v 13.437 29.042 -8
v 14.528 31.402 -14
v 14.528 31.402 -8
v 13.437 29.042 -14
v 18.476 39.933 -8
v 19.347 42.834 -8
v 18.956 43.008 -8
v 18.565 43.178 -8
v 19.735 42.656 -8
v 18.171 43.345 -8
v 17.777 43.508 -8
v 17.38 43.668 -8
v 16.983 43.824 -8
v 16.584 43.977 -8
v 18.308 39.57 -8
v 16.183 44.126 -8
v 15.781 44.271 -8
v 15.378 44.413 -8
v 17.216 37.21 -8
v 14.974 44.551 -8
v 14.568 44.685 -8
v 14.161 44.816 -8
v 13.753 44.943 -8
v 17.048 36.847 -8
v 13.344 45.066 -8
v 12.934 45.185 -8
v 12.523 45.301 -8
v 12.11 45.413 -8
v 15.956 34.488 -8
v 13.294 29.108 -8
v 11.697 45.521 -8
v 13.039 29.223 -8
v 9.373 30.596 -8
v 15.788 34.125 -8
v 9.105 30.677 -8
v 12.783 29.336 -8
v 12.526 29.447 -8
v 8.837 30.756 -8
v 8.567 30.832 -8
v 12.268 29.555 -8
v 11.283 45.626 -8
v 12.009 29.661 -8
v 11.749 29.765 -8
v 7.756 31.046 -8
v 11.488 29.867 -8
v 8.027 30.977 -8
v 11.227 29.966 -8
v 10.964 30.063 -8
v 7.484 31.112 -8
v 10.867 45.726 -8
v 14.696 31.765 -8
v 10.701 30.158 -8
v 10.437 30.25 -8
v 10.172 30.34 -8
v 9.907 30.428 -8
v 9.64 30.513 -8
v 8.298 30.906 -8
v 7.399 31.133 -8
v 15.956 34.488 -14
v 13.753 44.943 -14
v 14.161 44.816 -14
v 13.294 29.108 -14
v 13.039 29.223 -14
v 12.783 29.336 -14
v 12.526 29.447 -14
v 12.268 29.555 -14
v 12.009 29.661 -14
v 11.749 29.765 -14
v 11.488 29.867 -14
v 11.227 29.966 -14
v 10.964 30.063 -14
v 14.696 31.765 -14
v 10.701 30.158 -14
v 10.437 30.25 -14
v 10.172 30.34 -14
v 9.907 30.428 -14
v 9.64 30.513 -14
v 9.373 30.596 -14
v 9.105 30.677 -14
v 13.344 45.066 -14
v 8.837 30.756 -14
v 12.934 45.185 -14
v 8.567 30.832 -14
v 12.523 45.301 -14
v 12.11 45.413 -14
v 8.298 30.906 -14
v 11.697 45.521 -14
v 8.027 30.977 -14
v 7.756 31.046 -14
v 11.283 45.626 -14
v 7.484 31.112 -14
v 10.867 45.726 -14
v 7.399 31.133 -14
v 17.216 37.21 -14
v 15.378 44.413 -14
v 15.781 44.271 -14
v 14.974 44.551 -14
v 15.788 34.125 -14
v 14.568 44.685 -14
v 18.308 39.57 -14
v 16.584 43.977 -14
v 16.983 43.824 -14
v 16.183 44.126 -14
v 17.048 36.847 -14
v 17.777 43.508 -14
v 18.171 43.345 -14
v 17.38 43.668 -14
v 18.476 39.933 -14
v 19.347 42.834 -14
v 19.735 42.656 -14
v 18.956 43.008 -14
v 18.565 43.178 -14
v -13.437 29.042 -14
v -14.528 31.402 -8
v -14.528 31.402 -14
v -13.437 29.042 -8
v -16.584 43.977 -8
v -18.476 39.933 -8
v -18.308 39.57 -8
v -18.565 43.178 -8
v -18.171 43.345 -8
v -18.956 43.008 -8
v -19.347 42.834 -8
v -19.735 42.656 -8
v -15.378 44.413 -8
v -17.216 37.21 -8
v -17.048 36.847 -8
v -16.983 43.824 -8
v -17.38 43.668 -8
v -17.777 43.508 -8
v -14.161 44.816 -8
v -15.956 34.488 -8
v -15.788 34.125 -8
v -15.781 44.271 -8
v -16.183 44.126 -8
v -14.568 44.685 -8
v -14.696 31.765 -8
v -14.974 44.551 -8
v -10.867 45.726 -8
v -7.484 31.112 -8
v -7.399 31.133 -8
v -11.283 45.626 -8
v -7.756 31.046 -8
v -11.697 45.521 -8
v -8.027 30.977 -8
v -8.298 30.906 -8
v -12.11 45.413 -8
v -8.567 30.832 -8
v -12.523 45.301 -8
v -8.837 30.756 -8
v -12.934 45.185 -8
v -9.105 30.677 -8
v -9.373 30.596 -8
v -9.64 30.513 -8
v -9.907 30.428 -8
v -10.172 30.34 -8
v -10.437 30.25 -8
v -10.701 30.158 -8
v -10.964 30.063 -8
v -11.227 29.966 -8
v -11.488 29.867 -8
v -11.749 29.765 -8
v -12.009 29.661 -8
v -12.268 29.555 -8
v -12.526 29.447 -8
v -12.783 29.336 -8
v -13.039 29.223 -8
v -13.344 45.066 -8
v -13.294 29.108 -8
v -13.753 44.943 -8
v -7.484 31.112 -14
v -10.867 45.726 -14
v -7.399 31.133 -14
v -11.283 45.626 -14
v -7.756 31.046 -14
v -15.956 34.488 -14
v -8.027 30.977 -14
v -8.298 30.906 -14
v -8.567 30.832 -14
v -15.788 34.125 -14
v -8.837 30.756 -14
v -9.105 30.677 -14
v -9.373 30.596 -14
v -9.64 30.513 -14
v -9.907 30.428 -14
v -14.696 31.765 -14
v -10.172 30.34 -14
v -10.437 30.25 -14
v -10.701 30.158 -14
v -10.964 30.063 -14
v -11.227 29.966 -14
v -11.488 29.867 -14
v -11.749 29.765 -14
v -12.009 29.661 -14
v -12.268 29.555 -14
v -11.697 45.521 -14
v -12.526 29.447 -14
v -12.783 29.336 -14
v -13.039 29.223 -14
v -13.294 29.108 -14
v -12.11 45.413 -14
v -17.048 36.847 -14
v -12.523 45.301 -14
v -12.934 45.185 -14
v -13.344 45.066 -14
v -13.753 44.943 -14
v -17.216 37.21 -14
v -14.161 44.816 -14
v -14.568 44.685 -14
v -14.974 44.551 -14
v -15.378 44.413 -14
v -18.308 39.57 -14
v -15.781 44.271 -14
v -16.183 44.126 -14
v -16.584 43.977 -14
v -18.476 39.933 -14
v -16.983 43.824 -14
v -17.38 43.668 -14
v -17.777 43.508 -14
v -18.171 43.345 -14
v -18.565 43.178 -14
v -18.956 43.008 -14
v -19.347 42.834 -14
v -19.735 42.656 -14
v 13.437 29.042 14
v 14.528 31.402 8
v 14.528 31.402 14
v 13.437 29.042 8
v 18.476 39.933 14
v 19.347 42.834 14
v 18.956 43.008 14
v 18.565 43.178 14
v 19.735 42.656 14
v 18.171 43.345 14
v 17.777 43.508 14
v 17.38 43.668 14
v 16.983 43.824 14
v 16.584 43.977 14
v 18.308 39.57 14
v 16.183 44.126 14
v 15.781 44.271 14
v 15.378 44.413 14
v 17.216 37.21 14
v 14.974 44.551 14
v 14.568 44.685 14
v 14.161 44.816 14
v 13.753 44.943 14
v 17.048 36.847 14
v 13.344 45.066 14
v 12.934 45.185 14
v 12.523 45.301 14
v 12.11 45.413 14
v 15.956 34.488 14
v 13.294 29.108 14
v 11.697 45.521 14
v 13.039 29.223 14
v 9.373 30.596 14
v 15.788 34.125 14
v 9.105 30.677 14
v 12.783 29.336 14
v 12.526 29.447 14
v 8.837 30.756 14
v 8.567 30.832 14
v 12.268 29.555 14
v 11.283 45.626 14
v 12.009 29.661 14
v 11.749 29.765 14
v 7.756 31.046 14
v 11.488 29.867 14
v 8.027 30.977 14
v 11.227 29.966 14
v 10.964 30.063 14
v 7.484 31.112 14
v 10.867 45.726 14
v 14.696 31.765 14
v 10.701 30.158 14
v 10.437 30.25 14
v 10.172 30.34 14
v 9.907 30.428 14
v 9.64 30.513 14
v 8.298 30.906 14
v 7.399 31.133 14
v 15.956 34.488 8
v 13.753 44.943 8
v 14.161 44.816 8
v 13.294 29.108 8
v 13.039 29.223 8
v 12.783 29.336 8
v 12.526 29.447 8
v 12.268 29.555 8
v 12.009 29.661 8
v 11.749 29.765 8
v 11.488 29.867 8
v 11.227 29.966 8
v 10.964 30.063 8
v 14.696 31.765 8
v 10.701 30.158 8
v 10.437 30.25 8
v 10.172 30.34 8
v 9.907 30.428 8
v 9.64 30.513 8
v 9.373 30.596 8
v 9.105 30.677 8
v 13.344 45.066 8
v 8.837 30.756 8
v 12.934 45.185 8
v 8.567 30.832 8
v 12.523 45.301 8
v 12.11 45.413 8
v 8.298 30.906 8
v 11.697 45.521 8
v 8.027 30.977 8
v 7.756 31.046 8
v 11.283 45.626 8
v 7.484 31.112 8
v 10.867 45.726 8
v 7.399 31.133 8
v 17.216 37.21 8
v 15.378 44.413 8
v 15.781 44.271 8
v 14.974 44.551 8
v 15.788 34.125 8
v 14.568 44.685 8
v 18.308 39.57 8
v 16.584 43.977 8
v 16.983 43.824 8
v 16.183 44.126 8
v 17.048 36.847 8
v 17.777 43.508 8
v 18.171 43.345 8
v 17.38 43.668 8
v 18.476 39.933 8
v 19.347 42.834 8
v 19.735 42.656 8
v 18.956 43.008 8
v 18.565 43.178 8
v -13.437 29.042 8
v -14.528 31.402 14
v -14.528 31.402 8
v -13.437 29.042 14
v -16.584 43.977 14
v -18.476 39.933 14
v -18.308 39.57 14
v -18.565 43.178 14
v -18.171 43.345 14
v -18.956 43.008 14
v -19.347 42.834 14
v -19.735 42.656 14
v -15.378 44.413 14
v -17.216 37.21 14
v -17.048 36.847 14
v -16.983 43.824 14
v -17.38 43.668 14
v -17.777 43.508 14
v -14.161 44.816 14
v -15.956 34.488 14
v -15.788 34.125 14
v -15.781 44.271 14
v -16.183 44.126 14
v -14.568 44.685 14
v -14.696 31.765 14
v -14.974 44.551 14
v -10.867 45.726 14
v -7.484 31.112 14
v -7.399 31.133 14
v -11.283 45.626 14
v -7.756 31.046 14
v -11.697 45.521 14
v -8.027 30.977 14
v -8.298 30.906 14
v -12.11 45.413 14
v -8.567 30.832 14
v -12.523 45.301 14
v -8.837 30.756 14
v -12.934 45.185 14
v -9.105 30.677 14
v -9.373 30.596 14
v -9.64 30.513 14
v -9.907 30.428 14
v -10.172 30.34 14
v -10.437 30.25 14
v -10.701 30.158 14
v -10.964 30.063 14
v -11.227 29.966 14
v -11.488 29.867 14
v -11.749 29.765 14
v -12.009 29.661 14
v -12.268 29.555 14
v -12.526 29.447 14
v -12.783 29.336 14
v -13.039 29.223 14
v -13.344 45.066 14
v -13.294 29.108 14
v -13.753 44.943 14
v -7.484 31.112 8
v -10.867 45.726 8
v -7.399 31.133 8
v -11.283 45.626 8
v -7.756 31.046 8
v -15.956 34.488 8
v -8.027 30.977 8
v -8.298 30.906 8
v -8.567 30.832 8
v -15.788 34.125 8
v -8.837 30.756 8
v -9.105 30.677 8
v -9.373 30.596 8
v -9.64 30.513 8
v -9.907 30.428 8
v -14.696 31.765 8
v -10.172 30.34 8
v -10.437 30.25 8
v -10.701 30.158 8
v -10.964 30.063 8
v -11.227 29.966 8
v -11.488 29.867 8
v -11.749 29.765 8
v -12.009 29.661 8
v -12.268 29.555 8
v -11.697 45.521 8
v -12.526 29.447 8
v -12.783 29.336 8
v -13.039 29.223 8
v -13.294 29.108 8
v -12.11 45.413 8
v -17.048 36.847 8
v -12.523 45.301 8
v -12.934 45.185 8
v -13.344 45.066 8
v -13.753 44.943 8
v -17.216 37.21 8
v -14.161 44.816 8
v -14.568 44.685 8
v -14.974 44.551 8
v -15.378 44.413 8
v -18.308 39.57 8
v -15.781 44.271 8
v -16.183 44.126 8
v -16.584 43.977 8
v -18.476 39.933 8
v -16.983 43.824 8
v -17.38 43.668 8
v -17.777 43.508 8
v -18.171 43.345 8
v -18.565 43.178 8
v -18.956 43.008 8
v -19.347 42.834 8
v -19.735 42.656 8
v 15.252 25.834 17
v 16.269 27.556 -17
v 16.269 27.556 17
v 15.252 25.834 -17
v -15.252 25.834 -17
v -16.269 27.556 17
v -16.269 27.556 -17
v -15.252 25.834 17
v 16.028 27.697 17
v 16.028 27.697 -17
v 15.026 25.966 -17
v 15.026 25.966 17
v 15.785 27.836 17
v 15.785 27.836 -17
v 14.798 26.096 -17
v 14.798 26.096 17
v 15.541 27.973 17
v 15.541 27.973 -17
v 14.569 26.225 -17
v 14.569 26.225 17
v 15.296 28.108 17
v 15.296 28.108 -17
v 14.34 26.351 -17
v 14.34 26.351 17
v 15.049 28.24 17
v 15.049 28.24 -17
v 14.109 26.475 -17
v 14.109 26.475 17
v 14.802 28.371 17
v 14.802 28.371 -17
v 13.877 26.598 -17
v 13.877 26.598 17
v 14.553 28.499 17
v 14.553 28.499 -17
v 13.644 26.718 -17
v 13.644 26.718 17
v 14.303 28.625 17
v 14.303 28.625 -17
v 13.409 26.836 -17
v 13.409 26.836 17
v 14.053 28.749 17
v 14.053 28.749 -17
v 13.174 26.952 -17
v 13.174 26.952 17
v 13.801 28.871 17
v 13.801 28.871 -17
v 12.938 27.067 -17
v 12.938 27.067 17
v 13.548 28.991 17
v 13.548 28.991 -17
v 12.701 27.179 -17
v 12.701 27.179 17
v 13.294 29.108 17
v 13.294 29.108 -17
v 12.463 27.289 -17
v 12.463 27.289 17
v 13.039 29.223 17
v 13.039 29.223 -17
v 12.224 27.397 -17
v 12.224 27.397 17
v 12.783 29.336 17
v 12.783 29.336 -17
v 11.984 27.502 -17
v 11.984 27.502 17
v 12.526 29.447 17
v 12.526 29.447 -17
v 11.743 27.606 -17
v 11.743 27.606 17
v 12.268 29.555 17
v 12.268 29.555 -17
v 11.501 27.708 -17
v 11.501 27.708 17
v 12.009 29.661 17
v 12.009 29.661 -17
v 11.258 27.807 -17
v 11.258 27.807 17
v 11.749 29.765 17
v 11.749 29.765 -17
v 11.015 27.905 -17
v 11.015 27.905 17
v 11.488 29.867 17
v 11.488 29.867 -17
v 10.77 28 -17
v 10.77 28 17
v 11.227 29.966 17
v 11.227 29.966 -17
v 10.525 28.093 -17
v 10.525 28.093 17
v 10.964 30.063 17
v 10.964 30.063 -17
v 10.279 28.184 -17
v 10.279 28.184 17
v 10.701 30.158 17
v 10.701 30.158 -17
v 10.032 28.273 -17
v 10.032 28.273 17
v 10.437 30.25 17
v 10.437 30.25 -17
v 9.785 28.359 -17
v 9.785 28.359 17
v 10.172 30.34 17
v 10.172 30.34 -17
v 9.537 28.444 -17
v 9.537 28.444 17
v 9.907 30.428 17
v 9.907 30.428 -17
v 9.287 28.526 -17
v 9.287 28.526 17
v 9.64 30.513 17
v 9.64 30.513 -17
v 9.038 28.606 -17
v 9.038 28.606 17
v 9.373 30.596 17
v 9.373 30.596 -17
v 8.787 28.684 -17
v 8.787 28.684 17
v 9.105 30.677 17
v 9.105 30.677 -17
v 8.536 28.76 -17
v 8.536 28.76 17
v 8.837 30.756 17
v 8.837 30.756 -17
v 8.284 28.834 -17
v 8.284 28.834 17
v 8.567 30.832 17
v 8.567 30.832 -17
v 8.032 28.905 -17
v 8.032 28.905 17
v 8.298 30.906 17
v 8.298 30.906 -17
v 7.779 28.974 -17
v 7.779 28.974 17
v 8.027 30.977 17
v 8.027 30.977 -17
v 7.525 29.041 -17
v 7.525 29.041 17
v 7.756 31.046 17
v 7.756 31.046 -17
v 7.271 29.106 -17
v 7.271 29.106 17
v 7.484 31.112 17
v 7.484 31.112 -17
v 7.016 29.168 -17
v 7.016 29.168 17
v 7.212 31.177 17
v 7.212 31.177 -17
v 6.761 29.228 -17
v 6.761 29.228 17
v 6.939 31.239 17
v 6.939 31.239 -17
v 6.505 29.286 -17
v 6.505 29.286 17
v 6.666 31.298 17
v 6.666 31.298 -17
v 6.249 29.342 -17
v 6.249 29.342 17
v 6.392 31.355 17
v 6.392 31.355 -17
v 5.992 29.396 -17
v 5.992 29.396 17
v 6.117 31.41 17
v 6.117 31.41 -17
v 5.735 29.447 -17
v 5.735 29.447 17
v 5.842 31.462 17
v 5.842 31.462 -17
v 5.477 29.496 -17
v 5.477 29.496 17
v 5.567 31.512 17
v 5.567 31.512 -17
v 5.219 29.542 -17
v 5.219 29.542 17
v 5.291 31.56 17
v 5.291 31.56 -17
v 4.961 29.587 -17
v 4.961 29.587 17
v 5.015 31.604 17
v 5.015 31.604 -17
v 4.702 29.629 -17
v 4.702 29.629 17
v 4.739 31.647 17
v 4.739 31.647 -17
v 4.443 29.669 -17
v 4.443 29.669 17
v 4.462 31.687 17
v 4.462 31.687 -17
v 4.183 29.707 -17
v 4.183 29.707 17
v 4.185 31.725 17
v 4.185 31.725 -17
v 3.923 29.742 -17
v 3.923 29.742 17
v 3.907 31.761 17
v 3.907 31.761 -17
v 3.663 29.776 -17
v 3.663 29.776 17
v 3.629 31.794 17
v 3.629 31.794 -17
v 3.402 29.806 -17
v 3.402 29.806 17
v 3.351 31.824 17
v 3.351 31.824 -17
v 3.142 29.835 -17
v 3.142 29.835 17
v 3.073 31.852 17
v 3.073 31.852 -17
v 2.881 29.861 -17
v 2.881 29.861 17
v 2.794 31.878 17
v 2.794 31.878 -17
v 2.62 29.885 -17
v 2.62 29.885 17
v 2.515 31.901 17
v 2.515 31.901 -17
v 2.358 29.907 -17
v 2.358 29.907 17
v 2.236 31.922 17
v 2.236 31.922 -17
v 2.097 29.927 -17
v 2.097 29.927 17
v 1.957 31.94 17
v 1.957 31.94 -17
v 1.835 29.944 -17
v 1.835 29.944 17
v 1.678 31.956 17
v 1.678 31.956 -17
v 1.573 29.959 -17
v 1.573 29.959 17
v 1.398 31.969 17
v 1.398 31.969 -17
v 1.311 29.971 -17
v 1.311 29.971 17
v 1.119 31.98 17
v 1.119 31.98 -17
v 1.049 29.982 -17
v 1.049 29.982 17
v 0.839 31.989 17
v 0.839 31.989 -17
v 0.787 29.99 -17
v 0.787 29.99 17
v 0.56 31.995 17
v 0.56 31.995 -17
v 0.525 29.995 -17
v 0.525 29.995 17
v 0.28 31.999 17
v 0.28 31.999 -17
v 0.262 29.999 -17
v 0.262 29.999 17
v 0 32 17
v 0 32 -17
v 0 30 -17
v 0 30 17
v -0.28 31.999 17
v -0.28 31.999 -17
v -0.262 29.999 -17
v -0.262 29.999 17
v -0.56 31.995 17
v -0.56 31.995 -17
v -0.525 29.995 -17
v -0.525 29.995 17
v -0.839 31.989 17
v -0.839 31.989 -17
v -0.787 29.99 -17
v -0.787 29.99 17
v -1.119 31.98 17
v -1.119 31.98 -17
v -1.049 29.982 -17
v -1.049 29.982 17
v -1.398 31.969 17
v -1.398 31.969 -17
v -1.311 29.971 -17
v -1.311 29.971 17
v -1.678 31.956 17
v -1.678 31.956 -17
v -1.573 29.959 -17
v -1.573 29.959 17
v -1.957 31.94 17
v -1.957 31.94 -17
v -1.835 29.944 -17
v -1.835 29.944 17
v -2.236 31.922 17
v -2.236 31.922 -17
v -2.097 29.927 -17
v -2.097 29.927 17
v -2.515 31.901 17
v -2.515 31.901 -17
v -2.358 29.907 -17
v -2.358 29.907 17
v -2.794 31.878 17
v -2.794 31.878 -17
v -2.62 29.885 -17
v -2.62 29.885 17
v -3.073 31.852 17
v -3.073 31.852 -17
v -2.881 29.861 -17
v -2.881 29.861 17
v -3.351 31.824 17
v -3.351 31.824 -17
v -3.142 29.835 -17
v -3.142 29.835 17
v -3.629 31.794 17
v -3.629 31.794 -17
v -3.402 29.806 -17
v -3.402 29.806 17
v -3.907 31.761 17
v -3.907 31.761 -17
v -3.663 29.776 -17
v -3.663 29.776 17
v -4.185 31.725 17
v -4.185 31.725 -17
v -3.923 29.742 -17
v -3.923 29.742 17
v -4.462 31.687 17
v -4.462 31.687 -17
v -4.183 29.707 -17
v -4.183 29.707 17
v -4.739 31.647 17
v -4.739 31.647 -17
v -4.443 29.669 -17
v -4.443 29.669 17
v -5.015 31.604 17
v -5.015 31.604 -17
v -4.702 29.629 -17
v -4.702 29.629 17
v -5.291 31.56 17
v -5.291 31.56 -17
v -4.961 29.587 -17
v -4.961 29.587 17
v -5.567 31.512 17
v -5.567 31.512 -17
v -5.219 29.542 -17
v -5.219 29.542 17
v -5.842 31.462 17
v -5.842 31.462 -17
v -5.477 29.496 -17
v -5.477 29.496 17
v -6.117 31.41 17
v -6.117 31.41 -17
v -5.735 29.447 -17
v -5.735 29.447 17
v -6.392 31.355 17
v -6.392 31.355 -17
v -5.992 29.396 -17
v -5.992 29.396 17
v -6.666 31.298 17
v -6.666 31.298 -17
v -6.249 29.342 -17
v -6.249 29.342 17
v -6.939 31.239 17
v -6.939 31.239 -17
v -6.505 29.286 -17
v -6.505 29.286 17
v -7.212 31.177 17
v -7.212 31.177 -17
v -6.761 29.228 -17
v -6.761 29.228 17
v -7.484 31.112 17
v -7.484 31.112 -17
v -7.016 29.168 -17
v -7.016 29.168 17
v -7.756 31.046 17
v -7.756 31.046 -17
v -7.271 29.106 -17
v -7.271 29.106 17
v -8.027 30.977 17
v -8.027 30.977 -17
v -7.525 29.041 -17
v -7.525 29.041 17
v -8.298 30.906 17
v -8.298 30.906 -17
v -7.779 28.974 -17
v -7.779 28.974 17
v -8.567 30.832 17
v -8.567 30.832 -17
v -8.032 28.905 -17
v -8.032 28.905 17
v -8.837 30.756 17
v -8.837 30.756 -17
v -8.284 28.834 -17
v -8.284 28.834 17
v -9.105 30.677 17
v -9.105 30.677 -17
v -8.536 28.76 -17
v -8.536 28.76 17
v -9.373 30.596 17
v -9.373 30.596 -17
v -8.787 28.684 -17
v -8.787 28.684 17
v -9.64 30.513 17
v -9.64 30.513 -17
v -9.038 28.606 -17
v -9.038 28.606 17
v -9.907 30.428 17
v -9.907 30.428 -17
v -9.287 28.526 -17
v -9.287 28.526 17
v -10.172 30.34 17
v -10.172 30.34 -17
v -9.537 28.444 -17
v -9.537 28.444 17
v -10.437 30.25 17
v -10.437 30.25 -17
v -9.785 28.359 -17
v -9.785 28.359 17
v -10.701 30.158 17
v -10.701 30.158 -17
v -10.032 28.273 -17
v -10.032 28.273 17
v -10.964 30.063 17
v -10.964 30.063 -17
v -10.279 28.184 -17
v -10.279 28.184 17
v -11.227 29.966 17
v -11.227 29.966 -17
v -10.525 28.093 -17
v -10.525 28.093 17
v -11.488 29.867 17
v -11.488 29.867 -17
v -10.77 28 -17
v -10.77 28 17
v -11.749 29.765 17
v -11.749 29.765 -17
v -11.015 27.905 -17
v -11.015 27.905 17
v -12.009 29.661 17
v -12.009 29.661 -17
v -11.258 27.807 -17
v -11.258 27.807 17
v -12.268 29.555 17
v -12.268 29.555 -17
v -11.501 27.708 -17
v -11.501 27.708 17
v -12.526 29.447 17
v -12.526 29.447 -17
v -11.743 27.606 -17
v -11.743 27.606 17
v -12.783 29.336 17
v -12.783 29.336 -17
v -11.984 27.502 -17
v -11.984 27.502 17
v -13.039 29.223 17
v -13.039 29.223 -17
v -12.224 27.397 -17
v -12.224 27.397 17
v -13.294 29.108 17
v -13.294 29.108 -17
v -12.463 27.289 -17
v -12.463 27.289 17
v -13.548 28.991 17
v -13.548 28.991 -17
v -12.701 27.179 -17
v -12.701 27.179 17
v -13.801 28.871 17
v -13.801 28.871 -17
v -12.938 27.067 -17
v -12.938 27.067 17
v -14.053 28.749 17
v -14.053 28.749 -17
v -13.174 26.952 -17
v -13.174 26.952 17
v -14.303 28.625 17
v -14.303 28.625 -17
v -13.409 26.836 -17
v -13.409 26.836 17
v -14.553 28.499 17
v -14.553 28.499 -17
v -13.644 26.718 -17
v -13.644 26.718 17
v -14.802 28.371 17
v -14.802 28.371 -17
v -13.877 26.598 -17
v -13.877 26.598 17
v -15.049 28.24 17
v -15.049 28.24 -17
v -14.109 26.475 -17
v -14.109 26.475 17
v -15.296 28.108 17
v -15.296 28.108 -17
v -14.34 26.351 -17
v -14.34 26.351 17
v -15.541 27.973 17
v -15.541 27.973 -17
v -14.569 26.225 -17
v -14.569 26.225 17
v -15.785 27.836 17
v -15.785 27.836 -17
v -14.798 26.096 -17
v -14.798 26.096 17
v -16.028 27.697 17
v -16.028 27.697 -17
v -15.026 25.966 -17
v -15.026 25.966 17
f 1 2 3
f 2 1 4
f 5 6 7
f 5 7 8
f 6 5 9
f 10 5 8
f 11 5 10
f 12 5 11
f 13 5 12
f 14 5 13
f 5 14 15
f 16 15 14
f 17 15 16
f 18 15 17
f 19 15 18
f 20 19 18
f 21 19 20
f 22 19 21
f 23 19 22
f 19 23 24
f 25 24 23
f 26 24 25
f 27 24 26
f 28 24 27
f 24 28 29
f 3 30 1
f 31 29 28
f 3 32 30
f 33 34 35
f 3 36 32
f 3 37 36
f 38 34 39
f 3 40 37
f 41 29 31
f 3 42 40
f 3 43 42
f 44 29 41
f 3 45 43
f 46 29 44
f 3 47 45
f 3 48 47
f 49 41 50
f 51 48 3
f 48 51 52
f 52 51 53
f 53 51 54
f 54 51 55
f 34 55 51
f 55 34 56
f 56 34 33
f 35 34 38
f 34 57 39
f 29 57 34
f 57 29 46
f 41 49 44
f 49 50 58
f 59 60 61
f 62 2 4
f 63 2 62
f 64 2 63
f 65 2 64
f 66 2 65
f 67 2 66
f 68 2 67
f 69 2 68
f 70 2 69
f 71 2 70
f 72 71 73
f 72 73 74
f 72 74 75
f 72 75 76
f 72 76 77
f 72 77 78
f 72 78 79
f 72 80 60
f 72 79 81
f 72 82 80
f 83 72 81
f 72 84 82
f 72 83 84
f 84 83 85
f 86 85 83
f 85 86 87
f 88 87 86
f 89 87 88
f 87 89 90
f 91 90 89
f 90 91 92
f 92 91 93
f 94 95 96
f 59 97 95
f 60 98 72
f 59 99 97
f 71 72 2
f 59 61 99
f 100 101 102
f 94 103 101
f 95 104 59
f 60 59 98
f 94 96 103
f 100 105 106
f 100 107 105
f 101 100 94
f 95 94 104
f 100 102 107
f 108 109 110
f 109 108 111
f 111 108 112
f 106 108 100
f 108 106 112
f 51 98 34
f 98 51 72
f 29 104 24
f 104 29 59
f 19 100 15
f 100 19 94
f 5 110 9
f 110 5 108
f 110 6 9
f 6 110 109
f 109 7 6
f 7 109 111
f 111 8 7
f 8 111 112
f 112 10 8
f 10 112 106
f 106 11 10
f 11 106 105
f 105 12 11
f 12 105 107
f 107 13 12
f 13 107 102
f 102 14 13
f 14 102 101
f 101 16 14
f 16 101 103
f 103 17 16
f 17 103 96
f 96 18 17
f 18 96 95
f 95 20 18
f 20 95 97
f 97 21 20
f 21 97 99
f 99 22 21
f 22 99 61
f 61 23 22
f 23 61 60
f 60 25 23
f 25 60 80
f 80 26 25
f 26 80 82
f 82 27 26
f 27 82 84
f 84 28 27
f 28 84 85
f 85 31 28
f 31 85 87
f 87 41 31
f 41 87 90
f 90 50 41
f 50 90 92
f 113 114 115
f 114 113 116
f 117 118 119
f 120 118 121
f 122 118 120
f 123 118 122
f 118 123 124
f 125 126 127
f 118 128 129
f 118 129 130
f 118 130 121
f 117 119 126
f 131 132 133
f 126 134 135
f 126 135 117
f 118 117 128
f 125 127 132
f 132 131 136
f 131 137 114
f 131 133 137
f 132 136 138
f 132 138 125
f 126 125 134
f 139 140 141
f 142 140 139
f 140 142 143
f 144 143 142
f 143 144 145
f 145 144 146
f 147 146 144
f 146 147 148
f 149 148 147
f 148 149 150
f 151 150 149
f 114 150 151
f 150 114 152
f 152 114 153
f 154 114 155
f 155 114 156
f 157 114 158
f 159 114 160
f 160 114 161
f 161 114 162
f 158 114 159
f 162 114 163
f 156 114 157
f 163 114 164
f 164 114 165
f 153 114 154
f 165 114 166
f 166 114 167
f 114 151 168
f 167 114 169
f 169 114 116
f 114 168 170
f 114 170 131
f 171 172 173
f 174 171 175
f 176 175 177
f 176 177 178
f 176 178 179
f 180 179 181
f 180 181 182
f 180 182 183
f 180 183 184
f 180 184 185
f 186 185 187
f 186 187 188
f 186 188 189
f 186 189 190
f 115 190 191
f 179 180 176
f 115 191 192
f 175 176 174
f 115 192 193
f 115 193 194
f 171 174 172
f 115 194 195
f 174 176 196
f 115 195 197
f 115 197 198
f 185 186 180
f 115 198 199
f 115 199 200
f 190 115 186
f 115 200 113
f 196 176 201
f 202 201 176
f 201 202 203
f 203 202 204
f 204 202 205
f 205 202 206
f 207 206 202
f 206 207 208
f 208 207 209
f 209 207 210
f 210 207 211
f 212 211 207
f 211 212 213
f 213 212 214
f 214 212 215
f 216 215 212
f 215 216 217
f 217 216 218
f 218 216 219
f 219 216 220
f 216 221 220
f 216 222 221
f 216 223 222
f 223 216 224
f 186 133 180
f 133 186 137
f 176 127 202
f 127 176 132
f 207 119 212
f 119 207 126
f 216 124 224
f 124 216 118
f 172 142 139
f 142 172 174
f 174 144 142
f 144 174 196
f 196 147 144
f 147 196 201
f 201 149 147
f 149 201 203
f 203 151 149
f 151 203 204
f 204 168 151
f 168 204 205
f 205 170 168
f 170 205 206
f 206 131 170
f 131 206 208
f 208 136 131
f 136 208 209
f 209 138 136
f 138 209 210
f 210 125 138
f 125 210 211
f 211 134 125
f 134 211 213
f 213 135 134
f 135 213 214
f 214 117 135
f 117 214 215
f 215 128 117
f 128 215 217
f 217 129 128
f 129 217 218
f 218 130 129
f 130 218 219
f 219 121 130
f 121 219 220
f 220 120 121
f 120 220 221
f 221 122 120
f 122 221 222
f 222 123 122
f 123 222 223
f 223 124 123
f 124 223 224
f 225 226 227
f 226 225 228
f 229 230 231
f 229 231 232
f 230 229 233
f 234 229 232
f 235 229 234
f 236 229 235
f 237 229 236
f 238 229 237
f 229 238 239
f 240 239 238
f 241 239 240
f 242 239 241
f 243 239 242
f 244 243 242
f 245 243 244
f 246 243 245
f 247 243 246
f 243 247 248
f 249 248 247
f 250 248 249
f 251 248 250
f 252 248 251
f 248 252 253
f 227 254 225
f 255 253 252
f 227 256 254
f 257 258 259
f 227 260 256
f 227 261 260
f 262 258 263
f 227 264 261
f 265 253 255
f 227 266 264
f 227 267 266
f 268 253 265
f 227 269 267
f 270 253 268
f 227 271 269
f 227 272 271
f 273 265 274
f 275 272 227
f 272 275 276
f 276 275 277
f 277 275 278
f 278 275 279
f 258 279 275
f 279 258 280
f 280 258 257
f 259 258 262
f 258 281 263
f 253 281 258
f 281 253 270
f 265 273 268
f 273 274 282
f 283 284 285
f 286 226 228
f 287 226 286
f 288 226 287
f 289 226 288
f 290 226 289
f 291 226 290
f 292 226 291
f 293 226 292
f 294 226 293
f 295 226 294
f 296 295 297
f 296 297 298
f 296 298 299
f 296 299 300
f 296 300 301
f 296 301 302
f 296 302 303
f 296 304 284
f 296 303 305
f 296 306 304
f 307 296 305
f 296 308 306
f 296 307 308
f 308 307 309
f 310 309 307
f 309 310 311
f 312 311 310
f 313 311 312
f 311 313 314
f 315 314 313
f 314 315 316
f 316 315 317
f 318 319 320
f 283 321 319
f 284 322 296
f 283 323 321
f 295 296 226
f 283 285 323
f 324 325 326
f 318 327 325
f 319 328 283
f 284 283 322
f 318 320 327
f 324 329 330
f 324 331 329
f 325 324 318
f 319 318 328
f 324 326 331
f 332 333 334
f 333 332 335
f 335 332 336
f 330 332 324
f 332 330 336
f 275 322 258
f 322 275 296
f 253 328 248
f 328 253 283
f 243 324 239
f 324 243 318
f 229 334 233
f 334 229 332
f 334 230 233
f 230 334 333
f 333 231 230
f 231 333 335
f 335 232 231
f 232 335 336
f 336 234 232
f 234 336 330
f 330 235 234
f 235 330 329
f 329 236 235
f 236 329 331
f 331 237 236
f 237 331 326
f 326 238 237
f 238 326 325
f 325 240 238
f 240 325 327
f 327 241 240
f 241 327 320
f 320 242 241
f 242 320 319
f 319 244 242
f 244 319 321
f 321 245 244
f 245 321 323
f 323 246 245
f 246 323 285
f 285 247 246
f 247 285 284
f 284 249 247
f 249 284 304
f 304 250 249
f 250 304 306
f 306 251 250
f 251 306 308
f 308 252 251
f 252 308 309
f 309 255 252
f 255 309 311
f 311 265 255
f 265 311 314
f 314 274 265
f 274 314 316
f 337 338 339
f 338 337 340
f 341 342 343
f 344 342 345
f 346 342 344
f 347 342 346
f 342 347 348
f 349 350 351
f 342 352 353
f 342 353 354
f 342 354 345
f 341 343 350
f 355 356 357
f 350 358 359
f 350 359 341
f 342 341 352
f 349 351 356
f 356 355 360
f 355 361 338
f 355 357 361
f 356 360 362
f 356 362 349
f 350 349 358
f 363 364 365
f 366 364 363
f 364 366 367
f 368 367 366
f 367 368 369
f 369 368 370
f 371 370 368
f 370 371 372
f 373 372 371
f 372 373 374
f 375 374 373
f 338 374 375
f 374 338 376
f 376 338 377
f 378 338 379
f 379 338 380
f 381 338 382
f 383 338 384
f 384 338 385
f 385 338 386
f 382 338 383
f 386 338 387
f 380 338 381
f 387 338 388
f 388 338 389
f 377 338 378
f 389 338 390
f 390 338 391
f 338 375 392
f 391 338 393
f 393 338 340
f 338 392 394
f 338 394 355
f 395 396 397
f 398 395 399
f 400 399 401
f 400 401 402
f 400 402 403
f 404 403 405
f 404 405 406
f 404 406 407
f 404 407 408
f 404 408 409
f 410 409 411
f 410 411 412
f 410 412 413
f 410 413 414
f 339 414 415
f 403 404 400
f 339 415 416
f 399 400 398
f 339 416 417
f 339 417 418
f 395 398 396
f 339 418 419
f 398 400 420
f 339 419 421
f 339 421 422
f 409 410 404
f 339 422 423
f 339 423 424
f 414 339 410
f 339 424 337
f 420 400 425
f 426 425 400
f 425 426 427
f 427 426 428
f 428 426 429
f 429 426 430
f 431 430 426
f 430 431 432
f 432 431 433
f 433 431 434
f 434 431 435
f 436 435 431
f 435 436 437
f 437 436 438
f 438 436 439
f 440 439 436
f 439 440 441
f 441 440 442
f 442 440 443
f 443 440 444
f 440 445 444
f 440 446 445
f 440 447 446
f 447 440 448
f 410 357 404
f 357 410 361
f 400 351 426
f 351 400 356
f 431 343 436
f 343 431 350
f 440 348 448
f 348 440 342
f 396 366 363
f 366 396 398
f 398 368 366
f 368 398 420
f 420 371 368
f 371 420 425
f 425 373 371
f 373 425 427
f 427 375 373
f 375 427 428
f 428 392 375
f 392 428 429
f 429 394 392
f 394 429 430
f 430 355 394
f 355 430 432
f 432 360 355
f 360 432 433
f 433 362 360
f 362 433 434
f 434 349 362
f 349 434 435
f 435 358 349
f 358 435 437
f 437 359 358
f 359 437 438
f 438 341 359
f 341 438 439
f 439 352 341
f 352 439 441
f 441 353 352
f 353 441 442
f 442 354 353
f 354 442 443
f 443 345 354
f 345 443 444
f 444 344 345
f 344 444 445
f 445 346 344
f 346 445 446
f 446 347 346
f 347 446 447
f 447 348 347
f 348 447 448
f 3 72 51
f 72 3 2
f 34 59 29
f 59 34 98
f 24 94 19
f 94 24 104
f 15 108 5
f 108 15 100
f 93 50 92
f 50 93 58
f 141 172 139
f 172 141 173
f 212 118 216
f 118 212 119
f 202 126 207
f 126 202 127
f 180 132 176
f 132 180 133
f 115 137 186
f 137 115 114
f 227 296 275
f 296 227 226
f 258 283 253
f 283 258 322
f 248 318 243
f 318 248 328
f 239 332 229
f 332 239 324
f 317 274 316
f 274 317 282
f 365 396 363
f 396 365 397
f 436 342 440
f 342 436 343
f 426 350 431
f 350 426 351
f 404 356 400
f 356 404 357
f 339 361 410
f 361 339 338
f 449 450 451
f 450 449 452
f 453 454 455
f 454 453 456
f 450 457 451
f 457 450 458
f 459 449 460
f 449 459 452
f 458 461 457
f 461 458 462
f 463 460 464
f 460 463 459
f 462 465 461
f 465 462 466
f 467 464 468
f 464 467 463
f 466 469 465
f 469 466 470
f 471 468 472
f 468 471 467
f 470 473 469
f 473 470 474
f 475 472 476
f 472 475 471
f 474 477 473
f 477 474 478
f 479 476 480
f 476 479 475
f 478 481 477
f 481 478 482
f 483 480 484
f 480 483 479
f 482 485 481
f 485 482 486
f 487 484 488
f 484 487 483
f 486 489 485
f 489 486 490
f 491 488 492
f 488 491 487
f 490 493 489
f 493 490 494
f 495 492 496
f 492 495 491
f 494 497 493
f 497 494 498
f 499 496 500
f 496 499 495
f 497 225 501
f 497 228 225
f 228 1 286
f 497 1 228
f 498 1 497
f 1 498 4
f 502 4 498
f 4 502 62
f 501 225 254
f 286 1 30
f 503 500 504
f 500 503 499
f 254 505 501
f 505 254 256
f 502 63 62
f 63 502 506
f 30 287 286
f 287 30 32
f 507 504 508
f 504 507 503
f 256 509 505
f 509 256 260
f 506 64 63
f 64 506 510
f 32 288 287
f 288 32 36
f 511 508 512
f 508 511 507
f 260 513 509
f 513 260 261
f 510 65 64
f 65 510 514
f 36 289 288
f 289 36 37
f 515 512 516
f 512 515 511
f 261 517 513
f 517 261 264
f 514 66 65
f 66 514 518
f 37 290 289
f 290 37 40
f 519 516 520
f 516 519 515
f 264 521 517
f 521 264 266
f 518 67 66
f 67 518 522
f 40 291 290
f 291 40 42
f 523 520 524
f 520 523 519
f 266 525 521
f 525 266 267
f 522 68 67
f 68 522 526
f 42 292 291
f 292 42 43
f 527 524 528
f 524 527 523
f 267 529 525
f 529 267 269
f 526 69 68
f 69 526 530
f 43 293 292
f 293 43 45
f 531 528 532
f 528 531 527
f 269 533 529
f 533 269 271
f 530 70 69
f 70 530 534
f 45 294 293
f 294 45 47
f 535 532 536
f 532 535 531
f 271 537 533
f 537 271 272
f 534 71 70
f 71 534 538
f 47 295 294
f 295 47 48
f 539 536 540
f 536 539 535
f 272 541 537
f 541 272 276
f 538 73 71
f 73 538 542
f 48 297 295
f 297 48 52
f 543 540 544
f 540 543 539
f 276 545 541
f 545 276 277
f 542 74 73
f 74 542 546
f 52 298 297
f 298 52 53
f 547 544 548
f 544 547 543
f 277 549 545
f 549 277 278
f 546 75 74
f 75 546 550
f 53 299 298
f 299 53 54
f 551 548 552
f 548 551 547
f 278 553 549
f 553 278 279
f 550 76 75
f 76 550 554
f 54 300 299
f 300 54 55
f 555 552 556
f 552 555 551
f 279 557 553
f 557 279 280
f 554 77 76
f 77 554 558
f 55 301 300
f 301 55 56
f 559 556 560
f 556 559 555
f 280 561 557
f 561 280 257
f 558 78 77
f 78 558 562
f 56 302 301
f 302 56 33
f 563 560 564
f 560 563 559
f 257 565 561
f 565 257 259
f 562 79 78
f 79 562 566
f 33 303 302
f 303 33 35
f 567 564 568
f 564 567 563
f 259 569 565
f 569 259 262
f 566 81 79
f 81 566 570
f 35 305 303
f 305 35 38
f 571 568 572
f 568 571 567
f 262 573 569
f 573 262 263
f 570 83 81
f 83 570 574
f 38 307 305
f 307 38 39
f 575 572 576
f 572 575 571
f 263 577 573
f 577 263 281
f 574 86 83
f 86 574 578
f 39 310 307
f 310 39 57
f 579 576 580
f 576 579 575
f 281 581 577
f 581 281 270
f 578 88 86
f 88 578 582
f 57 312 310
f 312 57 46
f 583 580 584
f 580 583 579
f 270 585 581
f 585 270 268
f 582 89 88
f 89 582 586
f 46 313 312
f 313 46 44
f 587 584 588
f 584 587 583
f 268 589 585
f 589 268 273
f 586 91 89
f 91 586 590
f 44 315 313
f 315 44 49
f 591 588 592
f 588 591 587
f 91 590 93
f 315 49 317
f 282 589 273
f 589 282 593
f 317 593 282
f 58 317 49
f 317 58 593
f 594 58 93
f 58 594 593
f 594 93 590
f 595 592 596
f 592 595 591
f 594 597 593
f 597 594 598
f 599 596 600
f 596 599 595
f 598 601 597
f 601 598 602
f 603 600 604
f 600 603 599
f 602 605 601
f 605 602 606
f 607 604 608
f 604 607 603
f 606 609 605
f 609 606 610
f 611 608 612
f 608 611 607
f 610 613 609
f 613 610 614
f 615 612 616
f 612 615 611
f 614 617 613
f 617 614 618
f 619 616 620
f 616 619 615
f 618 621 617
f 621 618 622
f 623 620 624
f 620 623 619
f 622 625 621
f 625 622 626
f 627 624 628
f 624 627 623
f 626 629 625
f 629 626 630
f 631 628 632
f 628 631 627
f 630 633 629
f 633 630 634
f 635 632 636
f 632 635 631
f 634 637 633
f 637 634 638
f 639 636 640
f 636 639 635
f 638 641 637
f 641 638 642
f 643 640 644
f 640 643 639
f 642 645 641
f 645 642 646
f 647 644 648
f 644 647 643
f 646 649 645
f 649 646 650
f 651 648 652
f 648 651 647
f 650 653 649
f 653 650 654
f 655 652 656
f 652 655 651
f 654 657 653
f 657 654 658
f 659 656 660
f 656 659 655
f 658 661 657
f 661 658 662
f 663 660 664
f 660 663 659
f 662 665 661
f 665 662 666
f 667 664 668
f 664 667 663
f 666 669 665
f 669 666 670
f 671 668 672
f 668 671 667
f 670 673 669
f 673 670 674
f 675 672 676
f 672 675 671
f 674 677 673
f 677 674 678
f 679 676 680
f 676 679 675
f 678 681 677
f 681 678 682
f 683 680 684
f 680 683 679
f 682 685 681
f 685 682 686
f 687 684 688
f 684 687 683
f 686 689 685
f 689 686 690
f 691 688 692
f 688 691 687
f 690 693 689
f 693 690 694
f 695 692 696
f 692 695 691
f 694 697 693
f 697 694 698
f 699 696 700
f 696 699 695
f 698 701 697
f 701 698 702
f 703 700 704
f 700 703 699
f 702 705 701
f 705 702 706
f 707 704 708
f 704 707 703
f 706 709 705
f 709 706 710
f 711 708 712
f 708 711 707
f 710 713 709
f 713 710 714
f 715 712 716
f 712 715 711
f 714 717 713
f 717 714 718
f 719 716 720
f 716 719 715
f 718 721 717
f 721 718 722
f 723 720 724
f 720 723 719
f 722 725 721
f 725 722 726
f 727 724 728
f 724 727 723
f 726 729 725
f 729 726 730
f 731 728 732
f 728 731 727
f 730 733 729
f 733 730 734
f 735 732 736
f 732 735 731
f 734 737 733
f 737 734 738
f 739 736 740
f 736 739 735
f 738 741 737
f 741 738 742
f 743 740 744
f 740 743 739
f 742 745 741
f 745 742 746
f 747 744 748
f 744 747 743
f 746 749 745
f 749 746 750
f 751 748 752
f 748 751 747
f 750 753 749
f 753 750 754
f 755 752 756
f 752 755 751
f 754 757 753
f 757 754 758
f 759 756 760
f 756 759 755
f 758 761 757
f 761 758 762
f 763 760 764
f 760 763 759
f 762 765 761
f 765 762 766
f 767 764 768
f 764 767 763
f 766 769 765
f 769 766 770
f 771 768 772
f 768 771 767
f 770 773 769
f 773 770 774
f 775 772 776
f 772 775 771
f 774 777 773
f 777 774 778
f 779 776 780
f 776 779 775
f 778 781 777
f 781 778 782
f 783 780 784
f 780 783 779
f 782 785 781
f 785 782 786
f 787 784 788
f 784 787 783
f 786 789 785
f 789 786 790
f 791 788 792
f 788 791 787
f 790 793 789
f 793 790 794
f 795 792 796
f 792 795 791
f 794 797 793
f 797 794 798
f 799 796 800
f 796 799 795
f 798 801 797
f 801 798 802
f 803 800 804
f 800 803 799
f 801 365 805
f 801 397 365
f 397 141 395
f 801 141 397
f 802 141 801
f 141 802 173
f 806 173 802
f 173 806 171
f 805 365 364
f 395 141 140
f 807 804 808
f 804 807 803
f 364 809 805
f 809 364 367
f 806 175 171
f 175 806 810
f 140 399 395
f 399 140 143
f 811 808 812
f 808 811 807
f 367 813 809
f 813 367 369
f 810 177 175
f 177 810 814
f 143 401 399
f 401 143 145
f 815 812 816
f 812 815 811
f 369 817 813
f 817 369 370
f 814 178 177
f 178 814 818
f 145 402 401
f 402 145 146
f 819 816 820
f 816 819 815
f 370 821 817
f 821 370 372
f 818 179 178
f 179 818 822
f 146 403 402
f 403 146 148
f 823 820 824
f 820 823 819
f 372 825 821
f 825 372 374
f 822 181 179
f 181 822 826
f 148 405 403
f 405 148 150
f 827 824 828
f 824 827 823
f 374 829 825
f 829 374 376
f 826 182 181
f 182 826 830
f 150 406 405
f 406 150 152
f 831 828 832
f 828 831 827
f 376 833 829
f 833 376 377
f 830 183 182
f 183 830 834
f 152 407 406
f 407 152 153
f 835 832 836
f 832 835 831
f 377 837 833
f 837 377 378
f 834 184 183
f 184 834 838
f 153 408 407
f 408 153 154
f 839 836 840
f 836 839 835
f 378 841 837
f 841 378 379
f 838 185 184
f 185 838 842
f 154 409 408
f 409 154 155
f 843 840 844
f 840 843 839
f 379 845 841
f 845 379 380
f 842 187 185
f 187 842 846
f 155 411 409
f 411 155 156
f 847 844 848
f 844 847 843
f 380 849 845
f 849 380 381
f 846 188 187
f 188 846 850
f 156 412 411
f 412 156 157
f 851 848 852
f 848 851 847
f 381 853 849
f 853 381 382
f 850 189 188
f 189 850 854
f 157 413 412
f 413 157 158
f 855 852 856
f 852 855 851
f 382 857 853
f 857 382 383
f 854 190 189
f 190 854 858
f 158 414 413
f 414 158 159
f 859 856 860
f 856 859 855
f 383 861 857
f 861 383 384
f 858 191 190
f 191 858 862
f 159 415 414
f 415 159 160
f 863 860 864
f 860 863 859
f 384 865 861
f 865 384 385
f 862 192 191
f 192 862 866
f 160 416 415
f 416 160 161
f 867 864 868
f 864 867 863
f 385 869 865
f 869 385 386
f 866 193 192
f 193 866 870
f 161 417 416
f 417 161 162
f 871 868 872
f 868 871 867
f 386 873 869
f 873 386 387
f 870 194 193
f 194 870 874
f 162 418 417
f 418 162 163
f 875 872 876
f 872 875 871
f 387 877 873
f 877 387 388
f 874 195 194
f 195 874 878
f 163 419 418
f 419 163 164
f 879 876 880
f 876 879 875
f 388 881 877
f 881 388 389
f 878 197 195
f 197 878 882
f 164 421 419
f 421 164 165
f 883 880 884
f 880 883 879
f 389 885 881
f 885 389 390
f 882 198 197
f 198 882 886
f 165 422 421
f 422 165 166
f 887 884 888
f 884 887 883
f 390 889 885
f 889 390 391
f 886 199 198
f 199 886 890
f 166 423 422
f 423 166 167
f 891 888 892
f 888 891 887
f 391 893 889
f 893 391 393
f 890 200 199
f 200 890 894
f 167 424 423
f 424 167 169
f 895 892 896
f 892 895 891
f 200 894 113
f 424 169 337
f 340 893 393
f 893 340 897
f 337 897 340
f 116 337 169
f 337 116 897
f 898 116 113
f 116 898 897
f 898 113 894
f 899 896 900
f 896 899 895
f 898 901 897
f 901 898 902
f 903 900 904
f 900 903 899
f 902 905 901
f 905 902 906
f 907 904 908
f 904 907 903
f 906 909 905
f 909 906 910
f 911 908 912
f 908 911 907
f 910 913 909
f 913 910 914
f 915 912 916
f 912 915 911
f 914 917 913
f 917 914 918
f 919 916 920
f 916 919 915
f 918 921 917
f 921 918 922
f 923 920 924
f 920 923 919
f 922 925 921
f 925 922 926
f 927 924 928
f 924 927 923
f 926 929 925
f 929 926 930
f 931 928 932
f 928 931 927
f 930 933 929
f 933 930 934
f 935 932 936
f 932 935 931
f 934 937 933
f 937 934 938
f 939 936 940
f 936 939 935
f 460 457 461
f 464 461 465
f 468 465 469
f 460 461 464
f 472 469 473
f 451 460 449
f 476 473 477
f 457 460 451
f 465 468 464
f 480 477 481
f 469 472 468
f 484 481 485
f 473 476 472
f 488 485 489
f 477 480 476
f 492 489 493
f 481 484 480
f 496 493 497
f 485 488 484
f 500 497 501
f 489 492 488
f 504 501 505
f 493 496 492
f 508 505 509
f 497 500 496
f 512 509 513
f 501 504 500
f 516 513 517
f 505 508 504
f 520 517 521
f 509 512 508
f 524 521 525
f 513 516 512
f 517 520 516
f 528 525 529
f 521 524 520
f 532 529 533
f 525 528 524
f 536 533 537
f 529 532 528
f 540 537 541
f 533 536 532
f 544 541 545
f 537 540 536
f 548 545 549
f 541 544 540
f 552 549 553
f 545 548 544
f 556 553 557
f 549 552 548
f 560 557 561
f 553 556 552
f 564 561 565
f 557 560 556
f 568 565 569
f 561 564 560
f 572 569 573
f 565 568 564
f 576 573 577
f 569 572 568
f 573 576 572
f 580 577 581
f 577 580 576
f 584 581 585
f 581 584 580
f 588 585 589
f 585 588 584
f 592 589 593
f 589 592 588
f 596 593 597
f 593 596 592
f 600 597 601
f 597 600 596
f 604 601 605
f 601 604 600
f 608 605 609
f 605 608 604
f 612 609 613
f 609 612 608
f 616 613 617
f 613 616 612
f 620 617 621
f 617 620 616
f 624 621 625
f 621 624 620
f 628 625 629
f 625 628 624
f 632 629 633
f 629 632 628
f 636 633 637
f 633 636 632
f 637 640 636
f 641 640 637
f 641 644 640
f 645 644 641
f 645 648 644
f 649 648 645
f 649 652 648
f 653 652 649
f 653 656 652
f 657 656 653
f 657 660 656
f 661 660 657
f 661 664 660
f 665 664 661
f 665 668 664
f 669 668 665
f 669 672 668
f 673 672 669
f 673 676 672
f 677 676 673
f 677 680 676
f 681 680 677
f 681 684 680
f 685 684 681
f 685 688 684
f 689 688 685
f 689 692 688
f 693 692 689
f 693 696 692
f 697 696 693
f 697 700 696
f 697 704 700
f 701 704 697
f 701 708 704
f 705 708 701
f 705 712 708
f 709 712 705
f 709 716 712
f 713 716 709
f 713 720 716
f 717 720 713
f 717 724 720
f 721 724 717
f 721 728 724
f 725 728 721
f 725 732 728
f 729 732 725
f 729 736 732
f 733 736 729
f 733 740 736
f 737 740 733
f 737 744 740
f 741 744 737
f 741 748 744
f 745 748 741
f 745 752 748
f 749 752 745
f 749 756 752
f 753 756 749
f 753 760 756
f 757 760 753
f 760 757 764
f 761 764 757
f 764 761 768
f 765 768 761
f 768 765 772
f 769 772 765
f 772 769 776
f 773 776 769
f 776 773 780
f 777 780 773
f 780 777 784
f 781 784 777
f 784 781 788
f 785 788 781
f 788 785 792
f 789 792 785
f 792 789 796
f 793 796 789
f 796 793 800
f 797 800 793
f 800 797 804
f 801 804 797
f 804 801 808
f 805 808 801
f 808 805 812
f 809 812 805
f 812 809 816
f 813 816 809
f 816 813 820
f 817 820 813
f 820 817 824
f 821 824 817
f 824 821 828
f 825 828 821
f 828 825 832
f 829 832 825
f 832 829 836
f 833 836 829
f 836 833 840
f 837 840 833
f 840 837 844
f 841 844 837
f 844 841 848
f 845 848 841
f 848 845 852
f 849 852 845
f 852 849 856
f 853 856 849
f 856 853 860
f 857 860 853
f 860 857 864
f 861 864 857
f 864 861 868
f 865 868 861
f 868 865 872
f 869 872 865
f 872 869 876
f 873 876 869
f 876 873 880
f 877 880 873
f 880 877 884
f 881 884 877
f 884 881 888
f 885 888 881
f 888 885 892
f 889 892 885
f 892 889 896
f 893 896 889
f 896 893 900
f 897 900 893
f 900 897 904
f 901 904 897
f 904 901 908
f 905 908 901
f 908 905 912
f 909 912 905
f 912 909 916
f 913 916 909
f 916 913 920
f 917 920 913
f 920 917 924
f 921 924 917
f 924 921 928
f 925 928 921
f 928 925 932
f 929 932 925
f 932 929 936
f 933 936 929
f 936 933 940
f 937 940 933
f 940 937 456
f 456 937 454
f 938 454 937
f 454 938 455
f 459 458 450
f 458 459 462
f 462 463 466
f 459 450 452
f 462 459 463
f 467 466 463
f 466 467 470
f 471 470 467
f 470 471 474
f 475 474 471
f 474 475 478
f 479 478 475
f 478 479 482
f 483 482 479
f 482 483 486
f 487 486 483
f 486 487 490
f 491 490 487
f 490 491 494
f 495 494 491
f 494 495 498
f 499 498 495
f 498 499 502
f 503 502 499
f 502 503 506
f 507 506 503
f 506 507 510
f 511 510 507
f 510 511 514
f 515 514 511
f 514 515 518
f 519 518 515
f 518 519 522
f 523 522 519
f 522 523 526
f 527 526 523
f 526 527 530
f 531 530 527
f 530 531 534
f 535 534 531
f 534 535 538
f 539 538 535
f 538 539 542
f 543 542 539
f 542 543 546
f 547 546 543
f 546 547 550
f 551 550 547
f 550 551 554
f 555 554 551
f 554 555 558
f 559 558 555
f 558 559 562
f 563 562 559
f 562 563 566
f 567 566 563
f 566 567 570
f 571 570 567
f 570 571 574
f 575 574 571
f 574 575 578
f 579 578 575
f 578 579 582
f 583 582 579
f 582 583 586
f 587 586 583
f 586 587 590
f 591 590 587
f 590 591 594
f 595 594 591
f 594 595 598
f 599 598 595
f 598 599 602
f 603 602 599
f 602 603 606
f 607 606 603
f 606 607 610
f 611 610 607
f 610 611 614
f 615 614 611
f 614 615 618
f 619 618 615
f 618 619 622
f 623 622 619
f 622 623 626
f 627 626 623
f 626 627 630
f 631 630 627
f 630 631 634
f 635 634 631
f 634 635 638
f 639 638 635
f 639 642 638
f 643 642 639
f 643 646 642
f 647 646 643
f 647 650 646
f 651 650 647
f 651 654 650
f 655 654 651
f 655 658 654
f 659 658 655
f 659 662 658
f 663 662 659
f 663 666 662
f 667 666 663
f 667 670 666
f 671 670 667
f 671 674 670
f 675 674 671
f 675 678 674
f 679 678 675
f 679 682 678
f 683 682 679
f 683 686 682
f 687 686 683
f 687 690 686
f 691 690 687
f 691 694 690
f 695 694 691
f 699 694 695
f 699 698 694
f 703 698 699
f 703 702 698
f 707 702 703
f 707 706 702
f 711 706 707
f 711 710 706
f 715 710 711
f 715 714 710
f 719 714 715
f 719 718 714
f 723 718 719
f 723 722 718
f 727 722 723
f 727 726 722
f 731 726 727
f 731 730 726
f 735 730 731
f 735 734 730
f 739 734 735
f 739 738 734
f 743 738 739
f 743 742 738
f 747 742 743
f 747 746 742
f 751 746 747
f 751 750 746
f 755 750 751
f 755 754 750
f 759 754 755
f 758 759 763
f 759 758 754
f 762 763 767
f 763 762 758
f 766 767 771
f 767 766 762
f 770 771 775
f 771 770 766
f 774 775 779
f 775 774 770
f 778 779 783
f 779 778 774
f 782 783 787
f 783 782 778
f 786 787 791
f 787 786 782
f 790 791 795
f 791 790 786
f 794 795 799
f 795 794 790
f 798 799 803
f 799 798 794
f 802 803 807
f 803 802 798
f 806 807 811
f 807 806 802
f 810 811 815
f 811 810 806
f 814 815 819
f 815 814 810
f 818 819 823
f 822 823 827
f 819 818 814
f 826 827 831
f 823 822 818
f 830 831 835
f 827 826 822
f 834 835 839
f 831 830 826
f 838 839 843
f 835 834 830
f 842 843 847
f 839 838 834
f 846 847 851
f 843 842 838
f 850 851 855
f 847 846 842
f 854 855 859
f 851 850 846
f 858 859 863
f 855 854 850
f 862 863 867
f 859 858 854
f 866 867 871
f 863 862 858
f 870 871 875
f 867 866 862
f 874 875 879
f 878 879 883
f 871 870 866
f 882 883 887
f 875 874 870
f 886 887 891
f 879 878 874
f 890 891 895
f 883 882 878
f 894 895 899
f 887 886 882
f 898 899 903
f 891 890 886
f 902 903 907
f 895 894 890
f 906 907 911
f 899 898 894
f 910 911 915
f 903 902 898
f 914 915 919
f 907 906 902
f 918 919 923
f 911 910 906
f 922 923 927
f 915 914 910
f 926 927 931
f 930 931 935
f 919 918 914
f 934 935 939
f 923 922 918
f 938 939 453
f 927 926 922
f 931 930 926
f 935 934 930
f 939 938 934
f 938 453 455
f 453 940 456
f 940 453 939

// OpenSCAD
// Cylindrical retraction coupon. Mesh Z is axial; XY is the radial plane.
// Slicer output Z is radial height above bed_radius, NOT this mesh's Z.
// openscad -o /tmp/retraction_posts.stl calibration/retraction_posts.scad
bed_radius = 30;
base_height = 2;
band_height = 3;
bands = 5;
post_width = 6;              // axial and arc width at the build surface (mm)
axial_spacing = 22;          // centre to centre (mm)
arc_spacing = 20;            // centre to centre at bed_radius (mm)
margin = 3;
layout = "both";            // "axial", "rotary", or "both" (four posts)
// Optional witness grooves. Default off to avoid changing geometry between bands.
// If enabled, do not score the transition shells around grooves.
groove_depth = 0;
groove_height = 0.4;
$fn = 720;

assert(bed_radius > 0 && base_height > 0 && band_height > groove_height);
assert(bands >= 1 && bands == floor(bands));
assert(post_width > 2*groove_depth && axial_spacing > post_width && arc_spacing > post_width);
assert(layout == "axial" || layout == "rotary" || layout == "both");

// rotate_extrude revolves an (r, axial) rectangle around mesh Z.
module sector(r0, r1, theta, arc_width, axial, length) {
    angle = arc_width / bed_radius * 180 / PI;
    assert(angle > 0 && angle < 360);
    rotate([0, 0, theta - angle/2])
        rotate_extrude(angle=angle)
            translate([r0, axial-length/2]) square([r1-r0, length]);
}

total_height = base_height + bands * band_height;
axials = layout == "rotary" ? [0] : [-axial_spacing/2, axial_spacing/2];
arcs = layout == "axial" ? [0] : [-arc_spacing/2, arc_spacing/2];
base_arc = (layout == "axial" ? 0 : arc_spacing) + post_width + 2*margin;
base_length = (layout == "rotary" ? 0 : axial_spacing) + post_width + 2*margin;

union() {
    sector(bed_radius, bed_radius + base_height, 90, base_arc, 0, base_length);
    for (axial = axials, arc = arcs) {
        theta = 90 + arc / bed_radius * 180 / PI;
        // Core passes through all grooves, and overlaps the curved base.
        sector(bed_radius + base_height - 0.1, bed_radius + total_height,
               theta, post_width-2*groove_depth, axial, post_width-2*groove_depth);
        for (band = [0:bands-1]) {
            r0 = bed_radius + base_height + band*band_height;
            r1 = r0 + band_height - (band < bands-1 ? groove_height : 0);
            sector(r0, r1, theta, post_width, axial, post_width);
        }
    }
}
